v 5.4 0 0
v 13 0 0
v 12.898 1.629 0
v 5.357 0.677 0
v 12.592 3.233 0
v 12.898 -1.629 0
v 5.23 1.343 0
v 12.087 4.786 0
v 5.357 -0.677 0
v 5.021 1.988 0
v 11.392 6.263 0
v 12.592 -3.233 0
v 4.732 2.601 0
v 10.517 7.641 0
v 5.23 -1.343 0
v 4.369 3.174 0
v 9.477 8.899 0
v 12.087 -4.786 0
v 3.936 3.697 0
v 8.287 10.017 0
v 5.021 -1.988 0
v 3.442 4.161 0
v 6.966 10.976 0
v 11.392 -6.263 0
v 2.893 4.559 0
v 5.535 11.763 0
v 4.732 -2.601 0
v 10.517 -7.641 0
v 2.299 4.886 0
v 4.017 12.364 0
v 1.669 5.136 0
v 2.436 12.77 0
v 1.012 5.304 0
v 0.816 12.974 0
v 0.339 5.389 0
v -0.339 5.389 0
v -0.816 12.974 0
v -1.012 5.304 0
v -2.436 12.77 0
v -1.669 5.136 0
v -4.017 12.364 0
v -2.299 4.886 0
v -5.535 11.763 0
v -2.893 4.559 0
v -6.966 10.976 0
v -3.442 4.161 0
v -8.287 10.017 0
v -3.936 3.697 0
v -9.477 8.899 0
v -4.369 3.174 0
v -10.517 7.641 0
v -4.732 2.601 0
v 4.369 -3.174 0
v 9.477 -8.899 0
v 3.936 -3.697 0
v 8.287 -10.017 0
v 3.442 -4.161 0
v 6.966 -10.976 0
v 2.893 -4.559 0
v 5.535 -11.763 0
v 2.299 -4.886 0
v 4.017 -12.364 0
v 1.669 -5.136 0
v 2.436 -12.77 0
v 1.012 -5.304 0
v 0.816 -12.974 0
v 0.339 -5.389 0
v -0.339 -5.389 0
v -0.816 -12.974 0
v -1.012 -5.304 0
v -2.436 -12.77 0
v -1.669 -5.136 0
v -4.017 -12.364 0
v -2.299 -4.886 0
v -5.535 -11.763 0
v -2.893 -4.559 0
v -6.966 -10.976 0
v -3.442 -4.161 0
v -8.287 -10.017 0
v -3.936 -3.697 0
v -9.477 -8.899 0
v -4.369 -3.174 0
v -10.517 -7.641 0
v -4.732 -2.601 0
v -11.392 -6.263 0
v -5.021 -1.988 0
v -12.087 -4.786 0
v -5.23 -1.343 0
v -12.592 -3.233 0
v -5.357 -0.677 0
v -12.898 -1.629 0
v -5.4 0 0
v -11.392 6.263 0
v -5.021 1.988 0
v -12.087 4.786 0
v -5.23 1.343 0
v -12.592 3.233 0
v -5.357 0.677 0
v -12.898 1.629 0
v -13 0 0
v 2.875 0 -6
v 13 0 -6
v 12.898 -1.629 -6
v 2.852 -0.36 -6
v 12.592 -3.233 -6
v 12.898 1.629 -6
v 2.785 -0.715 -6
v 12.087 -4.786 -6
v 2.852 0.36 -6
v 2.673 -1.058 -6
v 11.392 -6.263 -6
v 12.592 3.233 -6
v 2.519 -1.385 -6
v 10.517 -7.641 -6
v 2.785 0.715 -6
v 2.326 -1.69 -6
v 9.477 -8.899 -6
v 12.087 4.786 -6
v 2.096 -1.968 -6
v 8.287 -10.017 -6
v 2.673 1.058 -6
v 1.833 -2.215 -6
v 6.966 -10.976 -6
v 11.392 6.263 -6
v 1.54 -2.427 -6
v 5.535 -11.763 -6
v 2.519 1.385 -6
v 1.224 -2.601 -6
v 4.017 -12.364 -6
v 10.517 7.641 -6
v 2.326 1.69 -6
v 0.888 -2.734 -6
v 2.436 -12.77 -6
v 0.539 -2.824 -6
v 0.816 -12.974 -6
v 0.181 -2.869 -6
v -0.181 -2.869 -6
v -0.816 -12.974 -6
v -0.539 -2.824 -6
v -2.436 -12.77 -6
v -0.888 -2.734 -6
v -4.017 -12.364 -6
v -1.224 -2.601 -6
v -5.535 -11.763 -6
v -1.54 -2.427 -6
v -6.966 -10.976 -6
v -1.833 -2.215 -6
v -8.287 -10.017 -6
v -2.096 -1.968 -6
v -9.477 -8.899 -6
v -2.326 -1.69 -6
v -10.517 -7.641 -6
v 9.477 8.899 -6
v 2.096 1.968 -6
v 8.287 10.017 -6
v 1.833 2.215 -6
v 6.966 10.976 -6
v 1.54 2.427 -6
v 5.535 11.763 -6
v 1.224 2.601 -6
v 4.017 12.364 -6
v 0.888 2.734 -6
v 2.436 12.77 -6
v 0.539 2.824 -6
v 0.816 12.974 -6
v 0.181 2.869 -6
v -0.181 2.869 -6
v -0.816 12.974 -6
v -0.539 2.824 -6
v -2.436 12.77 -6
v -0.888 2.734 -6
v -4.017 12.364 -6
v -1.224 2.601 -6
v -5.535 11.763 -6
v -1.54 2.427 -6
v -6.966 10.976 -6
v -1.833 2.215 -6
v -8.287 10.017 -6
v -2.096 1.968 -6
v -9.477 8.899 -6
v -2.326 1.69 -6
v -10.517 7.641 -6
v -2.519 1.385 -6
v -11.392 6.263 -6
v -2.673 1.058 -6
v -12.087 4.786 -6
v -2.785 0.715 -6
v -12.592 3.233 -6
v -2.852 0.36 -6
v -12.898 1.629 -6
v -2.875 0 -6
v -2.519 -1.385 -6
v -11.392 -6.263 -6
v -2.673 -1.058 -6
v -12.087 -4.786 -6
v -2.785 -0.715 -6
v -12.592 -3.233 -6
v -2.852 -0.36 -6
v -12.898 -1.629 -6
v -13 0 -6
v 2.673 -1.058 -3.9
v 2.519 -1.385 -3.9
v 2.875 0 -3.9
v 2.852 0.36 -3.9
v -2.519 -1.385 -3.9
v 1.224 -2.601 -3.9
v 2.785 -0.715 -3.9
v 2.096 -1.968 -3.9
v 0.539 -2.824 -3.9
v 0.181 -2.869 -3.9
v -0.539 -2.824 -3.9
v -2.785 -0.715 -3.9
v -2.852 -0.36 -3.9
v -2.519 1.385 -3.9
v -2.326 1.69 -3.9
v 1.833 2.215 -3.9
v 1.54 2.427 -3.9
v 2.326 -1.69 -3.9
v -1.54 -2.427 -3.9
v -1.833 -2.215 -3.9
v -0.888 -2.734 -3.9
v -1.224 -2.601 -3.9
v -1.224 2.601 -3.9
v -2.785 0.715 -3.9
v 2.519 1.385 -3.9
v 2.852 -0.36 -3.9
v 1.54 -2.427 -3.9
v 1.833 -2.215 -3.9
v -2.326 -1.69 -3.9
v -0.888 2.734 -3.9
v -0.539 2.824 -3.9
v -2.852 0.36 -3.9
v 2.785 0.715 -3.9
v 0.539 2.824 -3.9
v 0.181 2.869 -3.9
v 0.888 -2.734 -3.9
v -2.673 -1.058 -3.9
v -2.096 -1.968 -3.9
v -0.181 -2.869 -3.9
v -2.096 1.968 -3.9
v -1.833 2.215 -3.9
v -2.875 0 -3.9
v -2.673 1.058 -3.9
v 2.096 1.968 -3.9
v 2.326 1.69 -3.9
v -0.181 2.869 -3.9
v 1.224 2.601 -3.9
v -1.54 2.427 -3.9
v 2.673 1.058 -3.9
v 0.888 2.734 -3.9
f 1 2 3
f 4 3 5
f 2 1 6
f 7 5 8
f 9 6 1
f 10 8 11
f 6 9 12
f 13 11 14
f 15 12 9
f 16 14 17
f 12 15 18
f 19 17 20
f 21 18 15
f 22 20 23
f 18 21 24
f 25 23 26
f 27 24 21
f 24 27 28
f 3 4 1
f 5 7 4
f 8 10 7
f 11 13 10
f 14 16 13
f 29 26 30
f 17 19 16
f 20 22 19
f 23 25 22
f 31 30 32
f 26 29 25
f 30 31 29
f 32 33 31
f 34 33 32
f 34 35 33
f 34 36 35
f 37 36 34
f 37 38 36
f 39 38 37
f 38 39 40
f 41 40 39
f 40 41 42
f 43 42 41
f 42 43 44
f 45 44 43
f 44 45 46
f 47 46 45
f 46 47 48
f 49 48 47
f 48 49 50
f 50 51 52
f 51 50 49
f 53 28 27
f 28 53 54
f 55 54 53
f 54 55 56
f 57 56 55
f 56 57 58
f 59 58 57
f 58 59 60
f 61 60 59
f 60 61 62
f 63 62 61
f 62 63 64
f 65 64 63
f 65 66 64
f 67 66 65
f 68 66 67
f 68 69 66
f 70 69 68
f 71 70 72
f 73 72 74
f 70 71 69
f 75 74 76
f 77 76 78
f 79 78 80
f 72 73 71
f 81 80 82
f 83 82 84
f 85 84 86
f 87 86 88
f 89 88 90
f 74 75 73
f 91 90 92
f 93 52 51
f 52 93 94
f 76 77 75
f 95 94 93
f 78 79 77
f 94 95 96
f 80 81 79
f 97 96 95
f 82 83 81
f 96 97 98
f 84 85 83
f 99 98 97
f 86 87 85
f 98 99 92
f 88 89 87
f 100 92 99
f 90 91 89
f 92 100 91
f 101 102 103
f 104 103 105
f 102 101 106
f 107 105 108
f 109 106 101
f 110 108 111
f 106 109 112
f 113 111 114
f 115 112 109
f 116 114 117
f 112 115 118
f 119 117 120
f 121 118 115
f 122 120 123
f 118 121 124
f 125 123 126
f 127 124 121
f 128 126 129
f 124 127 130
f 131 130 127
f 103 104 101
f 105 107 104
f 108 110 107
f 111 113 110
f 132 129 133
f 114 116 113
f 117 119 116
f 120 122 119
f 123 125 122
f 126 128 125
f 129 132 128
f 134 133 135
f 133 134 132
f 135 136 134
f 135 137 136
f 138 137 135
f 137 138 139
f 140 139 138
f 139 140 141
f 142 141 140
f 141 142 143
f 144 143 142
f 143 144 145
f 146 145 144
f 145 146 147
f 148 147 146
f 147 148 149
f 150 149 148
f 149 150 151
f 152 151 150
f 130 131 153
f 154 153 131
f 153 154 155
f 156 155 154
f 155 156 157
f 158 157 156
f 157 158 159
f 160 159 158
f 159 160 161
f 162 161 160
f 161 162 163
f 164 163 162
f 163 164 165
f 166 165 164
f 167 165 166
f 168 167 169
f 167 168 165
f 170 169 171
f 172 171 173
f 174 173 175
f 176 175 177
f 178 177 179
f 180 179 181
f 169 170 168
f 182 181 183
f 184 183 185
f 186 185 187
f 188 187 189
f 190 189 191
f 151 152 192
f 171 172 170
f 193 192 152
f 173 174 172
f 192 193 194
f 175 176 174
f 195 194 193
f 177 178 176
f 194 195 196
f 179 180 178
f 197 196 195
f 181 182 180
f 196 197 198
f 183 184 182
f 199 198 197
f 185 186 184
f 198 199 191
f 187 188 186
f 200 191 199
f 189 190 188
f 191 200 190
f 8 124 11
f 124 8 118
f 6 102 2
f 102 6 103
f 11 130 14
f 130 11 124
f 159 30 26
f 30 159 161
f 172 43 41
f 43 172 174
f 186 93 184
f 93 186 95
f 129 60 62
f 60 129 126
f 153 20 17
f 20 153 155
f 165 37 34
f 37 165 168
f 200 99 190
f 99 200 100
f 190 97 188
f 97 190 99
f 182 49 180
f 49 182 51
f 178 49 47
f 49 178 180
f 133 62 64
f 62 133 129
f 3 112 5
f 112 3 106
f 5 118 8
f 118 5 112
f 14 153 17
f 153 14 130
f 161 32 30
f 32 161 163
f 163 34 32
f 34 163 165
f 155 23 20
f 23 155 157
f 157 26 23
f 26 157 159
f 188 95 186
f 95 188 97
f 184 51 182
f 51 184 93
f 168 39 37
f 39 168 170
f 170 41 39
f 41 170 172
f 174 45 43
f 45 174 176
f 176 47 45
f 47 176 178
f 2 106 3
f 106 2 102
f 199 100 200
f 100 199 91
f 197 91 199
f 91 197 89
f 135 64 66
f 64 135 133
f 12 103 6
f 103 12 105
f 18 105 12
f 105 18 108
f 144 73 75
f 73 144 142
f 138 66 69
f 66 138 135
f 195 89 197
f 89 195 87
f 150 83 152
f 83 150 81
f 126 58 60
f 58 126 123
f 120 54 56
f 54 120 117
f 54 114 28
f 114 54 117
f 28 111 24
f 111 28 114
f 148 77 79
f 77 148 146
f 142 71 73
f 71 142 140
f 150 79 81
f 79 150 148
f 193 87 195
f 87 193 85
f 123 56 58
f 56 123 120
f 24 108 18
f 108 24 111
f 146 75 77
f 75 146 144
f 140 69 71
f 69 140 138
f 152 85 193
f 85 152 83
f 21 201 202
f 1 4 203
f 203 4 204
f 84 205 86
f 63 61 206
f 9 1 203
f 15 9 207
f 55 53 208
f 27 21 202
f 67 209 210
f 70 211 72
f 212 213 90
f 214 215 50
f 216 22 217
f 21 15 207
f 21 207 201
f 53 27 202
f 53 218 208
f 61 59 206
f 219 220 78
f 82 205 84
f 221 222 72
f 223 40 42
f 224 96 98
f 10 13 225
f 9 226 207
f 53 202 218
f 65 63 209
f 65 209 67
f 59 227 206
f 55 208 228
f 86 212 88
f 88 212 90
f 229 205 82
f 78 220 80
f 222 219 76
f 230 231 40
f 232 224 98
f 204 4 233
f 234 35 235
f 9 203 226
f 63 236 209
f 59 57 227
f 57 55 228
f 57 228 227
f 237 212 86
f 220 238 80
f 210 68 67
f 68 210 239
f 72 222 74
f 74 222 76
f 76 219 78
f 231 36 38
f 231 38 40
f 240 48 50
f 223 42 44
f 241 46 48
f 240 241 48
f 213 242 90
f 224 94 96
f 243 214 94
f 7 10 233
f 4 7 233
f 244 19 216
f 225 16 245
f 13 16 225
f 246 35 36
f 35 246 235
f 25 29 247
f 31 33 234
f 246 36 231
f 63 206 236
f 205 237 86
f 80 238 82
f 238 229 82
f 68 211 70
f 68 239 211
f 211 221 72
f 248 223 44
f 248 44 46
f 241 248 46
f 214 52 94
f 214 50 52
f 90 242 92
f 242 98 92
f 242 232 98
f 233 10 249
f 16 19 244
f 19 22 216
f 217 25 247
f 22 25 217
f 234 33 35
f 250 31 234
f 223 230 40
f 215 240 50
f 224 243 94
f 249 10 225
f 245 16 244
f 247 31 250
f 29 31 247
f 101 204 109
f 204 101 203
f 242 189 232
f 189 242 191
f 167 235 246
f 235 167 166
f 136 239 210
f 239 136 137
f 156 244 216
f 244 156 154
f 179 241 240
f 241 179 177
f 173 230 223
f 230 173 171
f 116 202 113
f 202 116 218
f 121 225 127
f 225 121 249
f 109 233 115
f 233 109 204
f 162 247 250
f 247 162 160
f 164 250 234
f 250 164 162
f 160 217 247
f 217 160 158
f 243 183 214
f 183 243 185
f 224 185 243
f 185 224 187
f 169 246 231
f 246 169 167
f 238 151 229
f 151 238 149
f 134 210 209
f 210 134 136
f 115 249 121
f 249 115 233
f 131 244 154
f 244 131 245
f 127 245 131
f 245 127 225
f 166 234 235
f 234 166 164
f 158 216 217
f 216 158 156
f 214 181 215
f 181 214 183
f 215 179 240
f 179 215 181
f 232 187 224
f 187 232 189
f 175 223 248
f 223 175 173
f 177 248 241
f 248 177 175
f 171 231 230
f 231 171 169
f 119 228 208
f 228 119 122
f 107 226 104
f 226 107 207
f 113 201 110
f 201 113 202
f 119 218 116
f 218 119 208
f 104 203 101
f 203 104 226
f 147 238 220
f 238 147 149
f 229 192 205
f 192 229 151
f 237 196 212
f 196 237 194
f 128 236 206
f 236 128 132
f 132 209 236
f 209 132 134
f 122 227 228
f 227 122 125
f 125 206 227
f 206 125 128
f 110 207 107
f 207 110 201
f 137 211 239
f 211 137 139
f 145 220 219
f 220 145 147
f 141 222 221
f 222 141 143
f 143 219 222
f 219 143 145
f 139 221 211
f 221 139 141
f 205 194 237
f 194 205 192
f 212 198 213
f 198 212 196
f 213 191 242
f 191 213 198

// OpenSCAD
$fn = 50;


difference() {
	union() {
		translate(v = [0, 0, -6.0000000000]) {
			cylinder(h = 6, r = 7.0000000000);
		}
		translate(v = [0, 0, -6.0000000000]) {
			cylinder(h = 6, r = 13.0000000000);
		}
	}
	union() {
		translate(v = [0, 0, 0]) {
			rotate(a = [0, 0, 0]) {
				difference() {
					union() {
						#translate(v = [0, 0, -6.0000000000]) {
							cylinder(h = 6, r = 2.6000000000);
						}
						#translate(v = [0, 0, -3.9000000000]) {
							cylinder(h = 3.9000000000, r1 = 2.8750000000, r2 = 5.4000000000);
						}
						#translate(v = [0, 0, -6.0000000000]) {
							cylinder(h = 6, r = 2.8750000000);
						}
						#translate(v = [0, 0, -6.0000000000]) {
							cylinder(h = 6, r = 2.6000000000);
						}
					}
					union();
				}
			}
		}
	}
}
